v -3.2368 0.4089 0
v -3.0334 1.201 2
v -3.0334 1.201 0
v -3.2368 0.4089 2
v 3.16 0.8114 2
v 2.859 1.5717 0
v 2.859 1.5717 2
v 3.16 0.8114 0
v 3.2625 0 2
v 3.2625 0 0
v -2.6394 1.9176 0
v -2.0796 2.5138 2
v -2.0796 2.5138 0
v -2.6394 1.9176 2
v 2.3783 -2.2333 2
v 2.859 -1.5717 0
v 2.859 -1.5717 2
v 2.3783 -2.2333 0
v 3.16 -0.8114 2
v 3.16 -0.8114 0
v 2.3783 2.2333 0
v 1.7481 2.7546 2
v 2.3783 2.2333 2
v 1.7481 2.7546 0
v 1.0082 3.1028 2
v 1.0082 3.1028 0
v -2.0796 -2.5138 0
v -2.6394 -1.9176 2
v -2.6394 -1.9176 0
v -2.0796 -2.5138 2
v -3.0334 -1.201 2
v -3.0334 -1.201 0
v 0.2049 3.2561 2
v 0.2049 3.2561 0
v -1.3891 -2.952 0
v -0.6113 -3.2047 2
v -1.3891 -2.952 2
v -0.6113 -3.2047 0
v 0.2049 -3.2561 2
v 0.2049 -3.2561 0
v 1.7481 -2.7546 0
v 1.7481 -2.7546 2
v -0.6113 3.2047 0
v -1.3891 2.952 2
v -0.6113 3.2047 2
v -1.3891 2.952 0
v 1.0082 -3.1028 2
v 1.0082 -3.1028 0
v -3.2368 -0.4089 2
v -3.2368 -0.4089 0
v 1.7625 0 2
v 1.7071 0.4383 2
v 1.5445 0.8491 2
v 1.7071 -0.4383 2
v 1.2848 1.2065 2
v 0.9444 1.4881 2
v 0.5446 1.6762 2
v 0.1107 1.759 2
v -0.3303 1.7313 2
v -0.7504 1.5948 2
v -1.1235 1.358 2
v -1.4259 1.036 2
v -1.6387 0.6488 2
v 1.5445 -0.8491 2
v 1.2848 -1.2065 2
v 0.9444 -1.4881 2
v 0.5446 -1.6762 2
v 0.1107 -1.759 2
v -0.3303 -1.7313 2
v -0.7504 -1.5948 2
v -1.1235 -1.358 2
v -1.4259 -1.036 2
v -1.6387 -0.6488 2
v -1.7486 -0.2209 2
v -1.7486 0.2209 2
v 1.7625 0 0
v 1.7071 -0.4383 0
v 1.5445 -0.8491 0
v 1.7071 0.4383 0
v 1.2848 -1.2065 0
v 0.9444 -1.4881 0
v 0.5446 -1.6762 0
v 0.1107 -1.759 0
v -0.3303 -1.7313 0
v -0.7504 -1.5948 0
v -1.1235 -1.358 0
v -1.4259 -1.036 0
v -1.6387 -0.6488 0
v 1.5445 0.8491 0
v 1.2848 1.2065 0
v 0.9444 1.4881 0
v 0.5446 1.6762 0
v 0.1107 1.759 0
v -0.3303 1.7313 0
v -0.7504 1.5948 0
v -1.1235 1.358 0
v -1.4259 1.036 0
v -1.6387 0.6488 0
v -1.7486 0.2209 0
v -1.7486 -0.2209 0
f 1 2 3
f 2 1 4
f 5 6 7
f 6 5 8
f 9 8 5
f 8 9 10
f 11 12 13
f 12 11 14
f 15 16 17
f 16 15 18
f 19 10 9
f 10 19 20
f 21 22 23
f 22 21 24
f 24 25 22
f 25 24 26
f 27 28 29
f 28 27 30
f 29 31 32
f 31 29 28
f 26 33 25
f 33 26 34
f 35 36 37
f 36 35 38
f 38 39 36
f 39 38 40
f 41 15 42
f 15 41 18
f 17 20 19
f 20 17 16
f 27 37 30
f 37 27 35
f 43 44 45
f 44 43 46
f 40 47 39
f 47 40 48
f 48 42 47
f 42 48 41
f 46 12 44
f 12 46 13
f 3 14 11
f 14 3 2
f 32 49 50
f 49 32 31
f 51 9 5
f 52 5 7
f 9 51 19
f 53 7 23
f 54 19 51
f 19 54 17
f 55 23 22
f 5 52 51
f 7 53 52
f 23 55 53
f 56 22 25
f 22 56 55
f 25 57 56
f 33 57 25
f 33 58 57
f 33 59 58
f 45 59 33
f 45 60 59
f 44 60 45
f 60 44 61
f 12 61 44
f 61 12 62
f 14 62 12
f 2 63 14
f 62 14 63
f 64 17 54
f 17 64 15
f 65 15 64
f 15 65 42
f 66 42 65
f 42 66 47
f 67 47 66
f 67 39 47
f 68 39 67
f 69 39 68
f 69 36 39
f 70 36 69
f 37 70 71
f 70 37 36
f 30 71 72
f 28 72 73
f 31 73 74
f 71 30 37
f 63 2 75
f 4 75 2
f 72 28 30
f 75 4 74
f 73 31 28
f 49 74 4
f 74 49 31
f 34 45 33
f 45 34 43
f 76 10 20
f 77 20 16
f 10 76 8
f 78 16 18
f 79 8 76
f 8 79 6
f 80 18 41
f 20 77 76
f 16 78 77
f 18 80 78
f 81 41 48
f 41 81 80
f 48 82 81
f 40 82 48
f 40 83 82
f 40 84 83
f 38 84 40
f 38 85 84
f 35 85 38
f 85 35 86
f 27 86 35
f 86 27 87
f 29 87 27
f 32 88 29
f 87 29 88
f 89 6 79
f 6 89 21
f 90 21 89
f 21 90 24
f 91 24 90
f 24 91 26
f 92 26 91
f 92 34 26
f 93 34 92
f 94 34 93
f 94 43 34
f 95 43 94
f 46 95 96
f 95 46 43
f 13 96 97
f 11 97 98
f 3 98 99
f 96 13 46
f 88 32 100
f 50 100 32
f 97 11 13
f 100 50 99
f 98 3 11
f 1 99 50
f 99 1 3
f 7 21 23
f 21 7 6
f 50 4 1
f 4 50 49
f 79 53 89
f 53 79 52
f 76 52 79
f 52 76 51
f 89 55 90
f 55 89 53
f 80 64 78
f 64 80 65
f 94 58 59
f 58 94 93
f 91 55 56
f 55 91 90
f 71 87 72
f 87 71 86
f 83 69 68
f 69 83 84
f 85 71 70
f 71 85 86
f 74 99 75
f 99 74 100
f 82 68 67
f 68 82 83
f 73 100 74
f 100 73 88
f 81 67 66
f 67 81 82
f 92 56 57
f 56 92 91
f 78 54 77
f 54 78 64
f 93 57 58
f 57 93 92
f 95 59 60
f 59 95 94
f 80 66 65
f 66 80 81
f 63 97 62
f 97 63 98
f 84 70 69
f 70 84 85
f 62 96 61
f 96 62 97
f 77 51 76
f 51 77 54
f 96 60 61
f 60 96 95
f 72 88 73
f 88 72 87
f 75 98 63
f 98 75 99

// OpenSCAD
// Simple M3 spacers printed with TPU

anti_warp = .15;
height = 2;
screw_width = 3;
width = 6;

filament_width = 1.75;

$fn = 25;

difference() {
	cylinder(h = height, d = width + (filament_width * anti_warp) * 2);
	cylinder(h = height, d = screw_width + (filament_width * anti_warp) * 2);
}
